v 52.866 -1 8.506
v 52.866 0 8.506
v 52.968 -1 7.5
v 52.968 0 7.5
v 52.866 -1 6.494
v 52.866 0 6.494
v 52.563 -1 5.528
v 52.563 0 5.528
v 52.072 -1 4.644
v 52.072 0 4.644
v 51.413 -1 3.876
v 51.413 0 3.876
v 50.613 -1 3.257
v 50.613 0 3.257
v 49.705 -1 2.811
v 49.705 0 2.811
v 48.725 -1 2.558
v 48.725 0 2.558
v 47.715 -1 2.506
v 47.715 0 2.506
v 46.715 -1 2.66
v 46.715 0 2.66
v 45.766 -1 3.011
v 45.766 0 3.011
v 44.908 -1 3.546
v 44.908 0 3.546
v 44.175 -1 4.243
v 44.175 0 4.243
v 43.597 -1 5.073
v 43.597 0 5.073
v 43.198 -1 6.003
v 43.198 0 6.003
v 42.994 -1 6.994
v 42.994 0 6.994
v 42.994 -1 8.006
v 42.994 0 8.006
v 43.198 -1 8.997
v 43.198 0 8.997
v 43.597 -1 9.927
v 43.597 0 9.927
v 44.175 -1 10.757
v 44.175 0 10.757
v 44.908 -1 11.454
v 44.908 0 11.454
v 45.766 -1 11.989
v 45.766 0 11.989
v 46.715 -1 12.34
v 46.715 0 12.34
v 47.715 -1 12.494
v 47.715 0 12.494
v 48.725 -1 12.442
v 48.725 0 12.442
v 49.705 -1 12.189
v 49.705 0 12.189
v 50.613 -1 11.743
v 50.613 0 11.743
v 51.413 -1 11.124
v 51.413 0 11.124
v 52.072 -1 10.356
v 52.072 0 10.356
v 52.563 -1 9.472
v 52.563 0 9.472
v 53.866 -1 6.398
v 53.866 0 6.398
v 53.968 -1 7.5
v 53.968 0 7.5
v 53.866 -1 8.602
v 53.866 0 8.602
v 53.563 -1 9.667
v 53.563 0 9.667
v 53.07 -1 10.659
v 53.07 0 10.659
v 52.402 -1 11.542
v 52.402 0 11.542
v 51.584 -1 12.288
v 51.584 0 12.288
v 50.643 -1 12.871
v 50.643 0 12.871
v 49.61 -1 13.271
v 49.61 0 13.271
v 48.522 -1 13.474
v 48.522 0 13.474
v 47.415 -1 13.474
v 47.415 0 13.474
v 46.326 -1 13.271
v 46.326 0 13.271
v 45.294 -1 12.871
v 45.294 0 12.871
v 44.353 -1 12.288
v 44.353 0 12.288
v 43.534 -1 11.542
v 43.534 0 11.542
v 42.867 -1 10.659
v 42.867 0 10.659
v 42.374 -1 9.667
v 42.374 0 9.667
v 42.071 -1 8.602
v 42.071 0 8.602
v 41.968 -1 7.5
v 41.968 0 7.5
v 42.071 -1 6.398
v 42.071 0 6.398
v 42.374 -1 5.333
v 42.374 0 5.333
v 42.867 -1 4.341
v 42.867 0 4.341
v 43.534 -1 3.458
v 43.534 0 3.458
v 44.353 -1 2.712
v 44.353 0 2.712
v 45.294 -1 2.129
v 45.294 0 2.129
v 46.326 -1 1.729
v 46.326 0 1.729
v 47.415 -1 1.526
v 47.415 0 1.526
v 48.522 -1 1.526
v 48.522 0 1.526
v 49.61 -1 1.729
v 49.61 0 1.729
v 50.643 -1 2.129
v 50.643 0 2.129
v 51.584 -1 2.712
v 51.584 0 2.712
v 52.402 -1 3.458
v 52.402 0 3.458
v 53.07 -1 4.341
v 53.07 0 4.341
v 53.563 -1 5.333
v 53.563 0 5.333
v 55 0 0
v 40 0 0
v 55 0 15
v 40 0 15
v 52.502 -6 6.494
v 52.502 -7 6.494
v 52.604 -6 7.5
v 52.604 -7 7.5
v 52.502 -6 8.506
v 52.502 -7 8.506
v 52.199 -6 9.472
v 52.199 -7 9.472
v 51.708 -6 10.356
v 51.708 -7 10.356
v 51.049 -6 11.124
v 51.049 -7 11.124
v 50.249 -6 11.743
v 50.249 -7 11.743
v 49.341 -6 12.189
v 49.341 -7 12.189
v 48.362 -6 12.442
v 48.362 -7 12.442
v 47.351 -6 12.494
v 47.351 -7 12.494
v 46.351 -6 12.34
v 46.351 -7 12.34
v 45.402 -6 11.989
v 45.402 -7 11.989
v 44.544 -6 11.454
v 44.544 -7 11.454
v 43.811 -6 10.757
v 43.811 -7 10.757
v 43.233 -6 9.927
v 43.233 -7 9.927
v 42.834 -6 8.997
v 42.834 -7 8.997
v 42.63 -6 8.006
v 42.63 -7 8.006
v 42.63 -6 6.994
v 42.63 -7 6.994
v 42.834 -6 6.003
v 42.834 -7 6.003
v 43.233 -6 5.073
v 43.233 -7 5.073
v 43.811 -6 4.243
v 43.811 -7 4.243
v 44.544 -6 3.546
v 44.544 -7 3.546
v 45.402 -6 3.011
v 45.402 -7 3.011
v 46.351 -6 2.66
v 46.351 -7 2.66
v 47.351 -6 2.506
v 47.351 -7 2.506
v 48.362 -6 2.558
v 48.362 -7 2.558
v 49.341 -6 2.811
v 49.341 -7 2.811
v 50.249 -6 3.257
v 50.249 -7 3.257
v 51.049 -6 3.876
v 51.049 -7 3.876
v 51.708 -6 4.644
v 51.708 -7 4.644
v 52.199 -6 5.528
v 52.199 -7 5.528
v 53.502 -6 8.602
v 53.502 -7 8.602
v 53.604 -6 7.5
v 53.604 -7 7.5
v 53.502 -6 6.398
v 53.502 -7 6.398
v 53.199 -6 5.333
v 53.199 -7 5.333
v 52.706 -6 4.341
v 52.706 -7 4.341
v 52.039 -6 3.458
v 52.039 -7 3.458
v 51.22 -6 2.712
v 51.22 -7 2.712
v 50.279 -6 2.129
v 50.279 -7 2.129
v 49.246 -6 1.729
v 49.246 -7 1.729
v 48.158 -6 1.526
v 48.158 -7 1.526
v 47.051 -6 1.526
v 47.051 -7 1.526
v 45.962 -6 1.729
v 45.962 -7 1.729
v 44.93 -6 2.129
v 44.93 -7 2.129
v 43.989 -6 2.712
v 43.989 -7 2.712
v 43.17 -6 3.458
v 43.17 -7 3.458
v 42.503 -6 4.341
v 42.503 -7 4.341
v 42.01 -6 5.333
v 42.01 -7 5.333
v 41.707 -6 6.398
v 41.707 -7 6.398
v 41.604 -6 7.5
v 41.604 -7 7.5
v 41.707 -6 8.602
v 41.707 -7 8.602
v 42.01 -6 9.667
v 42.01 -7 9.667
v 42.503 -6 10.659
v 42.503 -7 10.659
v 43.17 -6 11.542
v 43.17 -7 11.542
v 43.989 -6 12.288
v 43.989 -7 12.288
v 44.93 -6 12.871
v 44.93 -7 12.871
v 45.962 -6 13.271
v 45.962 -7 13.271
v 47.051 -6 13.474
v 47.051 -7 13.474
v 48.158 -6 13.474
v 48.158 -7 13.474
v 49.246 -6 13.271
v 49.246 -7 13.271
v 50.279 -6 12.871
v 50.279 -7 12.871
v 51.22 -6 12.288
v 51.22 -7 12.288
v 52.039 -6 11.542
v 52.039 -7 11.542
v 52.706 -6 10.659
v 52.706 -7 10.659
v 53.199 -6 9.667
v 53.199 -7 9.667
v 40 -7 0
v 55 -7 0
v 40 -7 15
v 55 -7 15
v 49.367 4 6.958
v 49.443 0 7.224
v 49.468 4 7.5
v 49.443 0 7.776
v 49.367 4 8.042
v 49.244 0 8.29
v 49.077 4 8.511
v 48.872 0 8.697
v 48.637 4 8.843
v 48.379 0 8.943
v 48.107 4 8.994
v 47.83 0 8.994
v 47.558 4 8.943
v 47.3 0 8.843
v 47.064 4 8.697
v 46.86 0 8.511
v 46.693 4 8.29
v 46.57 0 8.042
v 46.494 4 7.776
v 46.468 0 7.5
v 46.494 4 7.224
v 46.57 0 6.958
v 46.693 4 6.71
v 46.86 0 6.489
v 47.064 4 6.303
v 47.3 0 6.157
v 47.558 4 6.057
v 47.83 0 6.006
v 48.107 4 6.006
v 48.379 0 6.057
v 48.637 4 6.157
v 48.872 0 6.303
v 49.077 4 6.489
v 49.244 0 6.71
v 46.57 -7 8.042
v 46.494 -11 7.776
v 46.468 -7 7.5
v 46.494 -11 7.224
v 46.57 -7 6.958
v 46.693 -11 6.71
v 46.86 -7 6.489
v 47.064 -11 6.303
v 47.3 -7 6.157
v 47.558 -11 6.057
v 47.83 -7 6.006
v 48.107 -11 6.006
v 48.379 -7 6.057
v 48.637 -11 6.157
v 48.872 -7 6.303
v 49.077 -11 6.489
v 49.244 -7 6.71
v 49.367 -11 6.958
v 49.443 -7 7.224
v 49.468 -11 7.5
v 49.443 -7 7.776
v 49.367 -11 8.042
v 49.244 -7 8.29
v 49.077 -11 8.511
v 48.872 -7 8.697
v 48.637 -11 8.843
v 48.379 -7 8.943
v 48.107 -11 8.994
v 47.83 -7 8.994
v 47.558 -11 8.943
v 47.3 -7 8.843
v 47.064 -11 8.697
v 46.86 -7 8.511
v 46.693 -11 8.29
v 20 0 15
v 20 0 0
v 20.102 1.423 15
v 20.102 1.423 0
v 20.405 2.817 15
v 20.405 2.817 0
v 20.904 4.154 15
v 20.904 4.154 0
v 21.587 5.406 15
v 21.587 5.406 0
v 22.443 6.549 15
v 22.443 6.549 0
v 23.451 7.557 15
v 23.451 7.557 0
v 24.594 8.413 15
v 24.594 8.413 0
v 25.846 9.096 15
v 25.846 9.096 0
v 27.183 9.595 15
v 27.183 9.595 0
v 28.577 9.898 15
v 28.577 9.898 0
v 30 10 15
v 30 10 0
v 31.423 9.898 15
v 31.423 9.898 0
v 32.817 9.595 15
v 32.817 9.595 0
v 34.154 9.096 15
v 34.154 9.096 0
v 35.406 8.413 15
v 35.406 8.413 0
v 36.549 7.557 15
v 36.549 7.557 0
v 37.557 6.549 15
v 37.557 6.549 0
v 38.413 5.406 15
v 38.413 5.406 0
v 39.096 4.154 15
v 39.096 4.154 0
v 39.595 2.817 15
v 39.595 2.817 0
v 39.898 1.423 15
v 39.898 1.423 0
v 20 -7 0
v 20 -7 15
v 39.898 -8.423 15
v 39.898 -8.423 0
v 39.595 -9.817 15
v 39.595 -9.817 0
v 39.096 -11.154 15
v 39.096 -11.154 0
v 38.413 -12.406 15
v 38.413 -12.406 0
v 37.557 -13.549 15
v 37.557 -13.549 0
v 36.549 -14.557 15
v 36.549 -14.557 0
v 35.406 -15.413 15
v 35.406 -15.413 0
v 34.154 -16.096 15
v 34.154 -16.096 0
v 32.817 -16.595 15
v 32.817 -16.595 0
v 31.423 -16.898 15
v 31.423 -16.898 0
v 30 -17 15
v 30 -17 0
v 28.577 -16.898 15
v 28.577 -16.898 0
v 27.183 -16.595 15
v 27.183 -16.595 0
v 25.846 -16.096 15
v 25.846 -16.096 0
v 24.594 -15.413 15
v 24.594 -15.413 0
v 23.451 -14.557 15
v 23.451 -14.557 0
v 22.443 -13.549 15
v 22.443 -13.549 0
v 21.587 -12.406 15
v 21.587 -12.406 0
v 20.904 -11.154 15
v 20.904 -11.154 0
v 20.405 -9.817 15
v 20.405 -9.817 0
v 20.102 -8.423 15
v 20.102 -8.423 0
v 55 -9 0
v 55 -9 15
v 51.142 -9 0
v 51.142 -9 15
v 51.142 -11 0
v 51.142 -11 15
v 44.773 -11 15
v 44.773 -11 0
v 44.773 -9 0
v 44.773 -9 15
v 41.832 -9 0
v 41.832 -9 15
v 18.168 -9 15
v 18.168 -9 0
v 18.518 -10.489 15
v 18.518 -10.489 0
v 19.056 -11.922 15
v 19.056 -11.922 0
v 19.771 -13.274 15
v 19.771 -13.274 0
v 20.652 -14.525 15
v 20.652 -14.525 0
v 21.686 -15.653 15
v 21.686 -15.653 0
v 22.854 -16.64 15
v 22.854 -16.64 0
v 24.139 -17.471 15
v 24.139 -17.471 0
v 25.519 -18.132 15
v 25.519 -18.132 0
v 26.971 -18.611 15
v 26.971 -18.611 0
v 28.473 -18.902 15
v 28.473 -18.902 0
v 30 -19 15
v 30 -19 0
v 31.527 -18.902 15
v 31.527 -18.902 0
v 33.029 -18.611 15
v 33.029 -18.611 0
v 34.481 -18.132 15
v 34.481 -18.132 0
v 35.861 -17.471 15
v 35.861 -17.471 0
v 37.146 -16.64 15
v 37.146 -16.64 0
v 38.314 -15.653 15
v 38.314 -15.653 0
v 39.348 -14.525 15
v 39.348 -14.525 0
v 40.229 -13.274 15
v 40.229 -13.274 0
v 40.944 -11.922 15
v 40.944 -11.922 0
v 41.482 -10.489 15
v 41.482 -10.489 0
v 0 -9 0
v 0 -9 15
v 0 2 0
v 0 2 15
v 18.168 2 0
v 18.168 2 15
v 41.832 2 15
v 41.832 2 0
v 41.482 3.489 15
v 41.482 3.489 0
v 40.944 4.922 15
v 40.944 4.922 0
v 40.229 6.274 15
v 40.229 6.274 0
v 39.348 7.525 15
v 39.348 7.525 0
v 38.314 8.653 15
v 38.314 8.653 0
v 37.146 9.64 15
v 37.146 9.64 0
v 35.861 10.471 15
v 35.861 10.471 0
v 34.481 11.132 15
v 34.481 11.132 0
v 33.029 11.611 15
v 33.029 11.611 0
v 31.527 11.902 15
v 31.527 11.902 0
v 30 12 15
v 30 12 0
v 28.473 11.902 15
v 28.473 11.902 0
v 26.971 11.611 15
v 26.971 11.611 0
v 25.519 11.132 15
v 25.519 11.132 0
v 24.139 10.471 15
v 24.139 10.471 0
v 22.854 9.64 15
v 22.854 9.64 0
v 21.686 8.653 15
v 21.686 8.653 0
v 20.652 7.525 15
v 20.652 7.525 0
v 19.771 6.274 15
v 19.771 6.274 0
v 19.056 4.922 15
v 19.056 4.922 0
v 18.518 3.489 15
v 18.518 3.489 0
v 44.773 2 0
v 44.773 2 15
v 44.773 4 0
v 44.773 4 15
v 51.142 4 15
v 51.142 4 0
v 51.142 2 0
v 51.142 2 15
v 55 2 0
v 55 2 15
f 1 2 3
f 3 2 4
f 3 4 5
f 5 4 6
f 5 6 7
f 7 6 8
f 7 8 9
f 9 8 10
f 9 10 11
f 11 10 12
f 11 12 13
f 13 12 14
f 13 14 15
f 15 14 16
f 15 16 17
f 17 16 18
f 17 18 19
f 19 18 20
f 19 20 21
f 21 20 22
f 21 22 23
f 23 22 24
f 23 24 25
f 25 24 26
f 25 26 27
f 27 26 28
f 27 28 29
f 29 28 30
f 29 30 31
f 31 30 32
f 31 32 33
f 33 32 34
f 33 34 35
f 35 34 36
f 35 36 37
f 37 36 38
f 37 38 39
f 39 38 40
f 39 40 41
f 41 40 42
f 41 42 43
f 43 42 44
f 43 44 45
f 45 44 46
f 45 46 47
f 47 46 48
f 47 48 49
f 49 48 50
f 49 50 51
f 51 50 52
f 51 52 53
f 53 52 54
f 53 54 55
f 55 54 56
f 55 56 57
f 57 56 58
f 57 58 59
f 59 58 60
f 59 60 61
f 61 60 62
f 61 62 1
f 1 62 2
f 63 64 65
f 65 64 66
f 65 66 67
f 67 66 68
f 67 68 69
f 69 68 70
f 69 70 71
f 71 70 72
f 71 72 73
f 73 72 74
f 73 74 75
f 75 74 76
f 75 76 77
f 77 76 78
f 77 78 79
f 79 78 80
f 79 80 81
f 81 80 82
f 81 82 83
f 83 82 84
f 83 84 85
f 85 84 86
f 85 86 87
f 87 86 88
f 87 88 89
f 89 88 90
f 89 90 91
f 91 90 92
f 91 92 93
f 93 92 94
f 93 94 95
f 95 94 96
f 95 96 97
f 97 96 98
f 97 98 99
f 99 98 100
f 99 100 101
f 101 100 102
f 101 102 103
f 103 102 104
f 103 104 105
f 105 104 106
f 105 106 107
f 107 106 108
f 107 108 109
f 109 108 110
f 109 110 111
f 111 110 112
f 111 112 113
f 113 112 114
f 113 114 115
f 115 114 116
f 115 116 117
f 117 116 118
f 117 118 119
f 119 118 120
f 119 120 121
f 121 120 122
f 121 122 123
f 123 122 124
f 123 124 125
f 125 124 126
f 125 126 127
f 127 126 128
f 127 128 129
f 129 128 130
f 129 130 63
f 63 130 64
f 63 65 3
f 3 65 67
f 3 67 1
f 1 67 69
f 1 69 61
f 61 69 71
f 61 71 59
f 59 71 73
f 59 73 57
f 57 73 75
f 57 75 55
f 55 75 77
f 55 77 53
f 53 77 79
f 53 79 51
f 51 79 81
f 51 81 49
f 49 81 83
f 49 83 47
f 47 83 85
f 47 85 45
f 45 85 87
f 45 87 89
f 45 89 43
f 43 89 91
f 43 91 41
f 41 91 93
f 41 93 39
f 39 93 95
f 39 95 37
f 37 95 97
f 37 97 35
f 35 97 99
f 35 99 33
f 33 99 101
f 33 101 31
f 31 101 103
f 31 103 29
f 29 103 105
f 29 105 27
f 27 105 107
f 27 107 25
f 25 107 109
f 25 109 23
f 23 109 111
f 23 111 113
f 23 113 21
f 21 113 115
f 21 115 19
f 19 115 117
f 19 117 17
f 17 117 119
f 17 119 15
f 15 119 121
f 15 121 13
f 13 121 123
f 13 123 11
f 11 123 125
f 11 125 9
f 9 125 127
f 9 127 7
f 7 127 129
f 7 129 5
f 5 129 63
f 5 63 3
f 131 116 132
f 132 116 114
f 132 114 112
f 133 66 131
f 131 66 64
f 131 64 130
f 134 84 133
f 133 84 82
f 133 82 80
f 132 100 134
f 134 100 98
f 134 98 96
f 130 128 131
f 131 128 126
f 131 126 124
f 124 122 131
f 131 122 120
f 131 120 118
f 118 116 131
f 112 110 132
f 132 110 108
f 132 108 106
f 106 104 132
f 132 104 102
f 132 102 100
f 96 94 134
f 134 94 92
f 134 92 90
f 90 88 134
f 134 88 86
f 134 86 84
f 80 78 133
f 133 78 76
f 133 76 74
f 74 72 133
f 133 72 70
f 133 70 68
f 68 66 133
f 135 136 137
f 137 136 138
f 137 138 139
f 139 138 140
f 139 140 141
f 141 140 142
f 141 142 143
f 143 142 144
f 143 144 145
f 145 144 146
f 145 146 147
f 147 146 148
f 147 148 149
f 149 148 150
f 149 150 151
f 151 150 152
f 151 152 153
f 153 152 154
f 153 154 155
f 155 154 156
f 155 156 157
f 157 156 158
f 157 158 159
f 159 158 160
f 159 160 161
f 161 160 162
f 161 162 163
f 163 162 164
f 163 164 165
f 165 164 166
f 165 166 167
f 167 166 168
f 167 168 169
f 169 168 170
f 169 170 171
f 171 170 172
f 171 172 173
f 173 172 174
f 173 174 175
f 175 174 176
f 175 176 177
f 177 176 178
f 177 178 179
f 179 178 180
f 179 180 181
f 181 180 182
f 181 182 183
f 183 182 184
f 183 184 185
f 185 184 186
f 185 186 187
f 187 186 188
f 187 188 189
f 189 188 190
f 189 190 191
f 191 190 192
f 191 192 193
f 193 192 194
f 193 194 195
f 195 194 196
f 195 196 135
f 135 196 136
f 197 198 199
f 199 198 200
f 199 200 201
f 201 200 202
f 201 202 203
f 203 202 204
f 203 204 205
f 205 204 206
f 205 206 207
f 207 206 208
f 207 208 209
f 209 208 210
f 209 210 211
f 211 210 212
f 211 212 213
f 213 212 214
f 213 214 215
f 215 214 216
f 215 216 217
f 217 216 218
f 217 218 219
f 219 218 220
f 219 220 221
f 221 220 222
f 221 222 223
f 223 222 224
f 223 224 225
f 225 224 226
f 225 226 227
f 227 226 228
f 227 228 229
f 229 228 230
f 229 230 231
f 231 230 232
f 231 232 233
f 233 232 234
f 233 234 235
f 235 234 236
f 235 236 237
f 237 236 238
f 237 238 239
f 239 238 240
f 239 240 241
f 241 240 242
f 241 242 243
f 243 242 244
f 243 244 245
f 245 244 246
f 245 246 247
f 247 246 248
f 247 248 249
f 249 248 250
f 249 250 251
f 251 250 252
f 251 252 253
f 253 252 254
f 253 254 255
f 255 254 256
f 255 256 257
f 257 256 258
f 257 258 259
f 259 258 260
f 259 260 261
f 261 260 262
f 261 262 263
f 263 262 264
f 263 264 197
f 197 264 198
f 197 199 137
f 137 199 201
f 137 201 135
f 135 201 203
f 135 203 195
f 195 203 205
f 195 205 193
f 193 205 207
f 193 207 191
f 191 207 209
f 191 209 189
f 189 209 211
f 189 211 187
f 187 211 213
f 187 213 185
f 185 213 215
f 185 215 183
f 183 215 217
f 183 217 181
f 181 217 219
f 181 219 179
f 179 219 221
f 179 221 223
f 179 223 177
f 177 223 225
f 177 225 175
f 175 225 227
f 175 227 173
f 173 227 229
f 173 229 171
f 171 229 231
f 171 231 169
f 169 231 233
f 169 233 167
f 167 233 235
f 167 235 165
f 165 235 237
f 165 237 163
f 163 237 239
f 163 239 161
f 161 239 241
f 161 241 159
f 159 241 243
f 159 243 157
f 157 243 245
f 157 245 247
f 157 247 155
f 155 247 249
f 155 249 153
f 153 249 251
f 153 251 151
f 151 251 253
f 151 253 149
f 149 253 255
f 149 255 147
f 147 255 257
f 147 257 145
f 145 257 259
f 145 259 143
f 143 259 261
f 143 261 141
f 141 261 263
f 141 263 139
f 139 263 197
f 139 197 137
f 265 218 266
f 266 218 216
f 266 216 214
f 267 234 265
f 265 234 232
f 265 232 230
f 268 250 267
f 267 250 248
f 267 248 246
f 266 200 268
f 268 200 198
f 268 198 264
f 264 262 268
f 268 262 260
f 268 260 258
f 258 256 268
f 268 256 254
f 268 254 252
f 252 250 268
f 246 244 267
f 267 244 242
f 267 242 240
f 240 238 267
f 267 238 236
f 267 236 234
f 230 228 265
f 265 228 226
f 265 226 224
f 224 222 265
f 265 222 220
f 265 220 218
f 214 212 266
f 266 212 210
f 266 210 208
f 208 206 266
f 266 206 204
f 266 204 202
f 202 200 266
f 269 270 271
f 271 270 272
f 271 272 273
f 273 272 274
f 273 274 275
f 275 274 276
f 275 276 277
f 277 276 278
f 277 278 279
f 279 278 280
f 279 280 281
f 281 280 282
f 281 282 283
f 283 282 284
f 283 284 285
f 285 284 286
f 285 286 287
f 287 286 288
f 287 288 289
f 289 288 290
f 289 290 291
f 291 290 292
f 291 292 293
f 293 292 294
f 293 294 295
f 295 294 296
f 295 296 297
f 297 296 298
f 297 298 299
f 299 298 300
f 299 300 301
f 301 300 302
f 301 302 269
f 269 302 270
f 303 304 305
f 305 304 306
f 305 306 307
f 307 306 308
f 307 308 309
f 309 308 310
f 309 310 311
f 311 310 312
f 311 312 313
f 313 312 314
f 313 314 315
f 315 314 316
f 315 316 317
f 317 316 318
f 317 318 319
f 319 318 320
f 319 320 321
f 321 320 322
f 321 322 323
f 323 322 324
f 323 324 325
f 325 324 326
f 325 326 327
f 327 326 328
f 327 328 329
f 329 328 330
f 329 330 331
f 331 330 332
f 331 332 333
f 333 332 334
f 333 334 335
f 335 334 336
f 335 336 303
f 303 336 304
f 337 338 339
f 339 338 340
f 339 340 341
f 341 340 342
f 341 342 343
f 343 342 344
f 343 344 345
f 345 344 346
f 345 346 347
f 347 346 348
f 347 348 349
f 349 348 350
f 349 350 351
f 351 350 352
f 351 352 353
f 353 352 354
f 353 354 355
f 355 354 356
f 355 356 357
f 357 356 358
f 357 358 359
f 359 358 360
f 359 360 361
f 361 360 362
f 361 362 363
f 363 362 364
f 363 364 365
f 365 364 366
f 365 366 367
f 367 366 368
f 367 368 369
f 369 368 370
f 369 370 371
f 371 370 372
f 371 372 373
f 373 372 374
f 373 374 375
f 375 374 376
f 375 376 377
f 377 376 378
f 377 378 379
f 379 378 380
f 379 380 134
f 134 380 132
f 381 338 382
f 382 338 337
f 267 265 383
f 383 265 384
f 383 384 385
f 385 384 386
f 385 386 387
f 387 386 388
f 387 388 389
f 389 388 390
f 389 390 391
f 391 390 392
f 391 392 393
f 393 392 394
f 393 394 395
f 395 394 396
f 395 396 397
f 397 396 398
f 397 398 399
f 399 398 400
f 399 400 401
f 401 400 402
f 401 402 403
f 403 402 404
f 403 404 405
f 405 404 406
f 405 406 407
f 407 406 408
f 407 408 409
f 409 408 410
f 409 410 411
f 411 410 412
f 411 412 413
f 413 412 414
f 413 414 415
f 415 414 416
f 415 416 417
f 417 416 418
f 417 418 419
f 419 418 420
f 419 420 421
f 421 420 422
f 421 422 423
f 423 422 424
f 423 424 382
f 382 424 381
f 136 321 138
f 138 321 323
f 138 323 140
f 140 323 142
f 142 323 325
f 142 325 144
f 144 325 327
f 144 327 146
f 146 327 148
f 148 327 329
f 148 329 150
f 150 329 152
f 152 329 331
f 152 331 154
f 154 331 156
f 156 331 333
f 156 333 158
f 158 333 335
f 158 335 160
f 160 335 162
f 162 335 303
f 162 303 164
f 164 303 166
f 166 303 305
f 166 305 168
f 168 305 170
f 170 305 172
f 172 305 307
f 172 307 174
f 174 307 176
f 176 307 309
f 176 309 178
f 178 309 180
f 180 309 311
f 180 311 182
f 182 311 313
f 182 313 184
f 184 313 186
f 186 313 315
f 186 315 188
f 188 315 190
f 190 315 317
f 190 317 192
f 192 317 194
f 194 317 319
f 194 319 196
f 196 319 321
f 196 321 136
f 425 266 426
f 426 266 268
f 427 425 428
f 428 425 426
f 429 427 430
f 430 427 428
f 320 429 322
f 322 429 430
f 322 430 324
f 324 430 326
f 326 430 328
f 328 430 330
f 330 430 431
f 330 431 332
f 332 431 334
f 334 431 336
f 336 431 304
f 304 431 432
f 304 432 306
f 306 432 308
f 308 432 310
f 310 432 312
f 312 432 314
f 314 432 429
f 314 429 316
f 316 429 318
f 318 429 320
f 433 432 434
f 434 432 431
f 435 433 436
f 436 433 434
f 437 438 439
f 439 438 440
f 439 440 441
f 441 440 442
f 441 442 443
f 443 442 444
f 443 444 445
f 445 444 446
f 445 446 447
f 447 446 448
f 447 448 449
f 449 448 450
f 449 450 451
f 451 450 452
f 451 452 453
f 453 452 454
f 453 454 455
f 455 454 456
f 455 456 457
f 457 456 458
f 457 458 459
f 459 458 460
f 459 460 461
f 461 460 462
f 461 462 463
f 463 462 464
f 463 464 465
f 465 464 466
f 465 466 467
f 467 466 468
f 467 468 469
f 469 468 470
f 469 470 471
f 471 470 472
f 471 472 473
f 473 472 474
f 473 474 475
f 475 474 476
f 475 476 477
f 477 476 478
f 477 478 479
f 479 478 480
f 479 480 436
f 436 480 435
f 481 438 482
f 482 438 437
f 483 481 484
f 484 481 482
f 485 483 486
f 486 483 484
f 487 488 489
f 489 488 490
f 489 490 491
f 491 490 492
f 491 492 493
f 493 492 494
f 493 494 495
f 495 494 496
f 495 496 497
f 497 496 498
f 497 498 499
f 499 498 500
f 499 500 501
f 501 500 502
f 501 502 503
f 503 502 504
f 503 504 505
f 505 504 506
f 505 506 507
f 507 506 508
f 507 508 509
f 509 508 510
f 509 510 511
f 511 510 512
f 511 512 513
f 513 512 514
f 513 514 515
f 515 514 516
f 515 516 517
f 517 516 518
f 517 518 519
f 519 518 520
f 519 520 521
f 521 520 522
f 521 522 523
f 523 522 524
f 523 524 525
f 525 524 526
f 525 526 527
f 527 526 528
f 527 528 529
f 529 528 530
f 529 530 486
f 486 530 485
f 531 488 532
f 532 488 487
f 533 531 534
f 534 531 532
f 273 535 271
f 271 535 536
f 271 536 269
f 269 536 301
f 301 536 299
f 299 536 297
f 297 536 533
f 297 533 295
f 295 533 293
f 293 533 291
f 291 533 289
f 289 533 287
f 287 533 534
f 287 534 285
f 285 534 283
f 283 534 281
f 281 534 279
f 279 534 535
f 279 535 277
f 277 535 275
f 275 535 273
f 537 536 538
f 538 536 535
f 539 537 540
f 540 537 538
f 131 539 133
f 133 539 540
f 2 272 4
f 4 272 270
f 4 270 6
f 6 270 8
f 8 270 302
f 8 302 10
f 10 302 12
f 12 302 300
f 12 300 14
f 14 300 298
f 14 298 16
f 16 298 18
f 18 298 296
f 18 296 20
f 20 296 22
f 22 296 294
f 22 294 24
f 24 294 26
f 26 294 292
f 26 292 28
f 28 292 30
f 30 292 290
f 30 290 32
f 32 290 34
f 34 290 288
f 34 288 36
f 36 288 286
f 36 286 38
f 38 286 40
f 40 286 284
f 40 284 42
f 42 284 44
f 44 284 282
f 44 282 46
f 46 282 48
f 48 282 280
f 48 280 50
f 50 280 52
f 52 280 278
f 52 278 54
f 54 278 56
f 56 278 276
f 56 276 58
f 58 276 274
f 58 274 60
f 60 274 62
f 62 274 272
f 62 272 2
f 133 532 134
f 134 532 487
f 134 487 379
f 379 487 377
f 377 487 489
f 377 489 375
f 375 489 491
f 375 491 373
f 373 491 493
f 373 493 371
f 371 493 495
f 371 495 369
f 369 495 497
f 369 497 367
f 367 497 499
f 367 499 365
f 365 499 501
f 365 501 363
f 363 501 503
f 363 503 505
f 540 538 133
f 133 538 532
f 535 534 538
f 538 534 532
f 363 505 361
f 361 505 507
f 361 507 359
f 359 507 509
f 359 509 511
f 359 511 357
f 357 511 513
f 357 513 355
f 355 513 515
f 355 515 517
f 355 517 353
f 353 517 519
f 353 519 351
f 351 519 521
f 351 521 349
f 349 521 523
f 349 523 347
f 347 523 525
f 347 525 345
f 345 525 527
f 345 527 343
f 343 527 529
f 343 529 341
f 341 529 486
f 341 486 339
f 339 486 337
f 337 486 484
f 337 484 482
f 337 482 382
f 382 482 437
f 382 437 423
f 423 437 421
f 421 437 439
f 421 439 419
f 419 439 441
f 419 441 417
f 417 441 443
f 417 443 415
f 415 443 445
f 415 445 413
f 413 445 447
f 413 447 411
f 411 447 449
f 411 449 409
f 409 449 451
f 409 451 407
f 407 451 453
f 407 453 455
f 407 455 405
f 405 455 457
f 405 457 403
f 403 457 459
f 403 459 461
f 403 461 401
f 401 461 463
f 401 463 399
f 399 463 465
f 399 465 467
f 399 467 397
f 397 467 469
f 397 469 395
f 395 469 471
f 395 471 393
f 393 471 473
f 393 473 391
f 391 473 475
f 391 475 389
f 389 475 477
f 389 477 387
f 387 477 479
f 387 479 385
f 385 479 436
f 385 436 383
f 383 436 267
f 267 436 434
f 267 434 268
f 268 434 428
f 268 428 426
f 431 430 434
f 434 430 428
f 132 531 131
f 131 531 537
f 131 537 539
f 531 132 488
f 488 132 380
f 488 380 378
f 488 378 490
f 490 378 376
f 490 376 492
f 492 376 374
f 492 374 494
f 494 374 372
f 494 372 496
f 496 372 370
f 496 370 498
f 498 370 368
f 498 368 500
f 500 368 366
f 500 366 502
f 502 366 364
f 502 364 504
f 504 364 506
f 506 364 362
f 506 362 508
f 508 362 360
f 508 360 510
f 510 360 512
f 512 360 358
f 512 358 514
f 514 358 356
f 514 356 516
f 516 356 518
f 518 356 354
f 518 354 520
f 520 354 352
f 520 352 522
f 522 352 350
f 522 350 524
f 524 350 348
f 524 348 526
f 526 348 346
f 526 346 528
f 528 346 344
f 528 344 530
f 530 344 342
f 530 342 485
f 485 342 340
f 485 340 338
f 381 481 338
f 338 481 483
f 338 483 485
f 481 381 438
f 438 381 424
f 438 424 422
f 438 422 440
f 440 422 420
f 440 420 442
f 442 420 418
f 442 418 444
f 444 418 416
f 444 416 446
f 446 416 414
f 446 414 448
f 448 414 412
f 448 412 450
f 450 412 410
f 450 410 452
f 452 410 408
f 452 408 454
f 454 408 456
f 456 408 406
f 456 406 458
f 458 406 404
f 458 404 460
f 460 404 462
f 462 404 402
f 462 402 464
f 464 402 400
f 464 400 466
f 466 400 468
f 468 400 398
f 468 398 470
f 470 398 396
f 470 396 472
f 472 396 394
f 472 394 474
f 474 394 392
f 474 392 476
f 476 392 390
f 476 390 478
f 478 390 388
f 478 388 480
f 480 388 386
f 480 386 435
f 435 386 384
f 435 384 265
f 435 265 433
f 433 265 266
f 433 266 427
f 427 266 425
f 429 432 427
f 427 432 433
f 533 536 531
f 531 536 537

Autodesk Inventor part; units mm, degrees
ref_plane "YZ Plane" through (0, 0, 0) normal (1, 0, 0) x (0, 1, 0)
ref_plane "XZ Plane" through (0, 0, 0) normal (0, 1, 0) x (-1, 0, 0)
ref_plane "XY Plane" through (0, 0, 0) normal (0, 0, 1) x (1, 0, 0)
sketch "Esboço1" plane through (0, 0, 0) normal (0, 0, 1) x (1, 0, 0)
  line L0 (0, 0) -> (20, 0)
  arc A0 (40, 0) -> (20, 0) centre (30, 0) ccw
  line L1 (40, 0) -> (55, 0)
  line L2 (55, 2) -> (41.8322, 2)
  arc A1 (41.8322, 2) -> (18.1678, 2) centre (30, 0) ccw
  line L3 (18.1678, 2) -> (0, 2)
  line L4 (0, 0) -> (0, 2)
  line L5 (55, 2) -> (55, 0)
  line L6 (-5.5604, -3.5) -> (66.7999, -3.5)
  line L7 (0, -7) -> (20, -7)
  arc A2 (20, -7) -> (40, -7) centre (30, -7) ccw
  line L8 (40, -7) -> (55, -7)
  line L9 (55, -9) -> (41.8322, -9)
  arc A3 (18.1678, -9) -> (41.8322, -9) centre (30, -7) ccw
  line L10 (18.1678, -9) -> (0, -9)
  line L11 (0, -7) -> (0, -9)
  line L12 (55, -9) -> (55, -7)
  line L13 (0, -7) -> (20, -7)
  line L14 (20, -7) -> (20, 0)
  line L15 (20, 0) -> (0, 0)
  line L16 (0, 0) -> (0, -7)
  line L17 (51.1425, 2) -> (44.7734, 2)
  line L18 (44.7734, 2) -> (44.7734, 4)
  line L19 (44.7734, 4) -> (51.1425, 4)
  line L20 (51.1425, 4) -> (51.1425, 2)
  line L21 (51.1425, -9) -> (44.7734, -9)
  line L22 (44.7734, -9) -> (44.7734, -11)
  line L23 (44.7734, -11) -> (51.1425, -11)
  line L24 (51.1425, -11) -> (51.1425, -9)
  point P0 (44.7734, -9)
  point P1 (20, -7)
  dimension "d0" = 20
  dimension "d1" = 20
  dimension "d2" = 10
  dimension "d3" = 15
  dimension "d4" = 2
  dimension "d5" = 7
  dimension "d6" = 2
  dimension "d7" = 2
extrude "Extrusão1" add sketch "Esboço1" along normal blind 15
sketch "Esboço2" plane through (44.7734, 4, 0) normal (0, 1, 0) x (1, 0, 0)
  circle A0 centre (3.195, -7.5) radius 1.5
  line L0 (6.3691, 0) -> (0, 0) projected
  line L1 (0, 0) -> (0, -15) projected
  point P0 (-44.7734, 0)
  dimension "d10" = 3
  dimension "d11" = 7.5
  dimension "d12" = 3.195
extrude "Extrusão2" cut sketch "Esboço2" against normal blind 15
sketch "Esboço3" plane through (40, -7, 0) normal (0, 1, 0) x (1, 0, 0)
  circle A0 centre (7.6045, -7.5) radius 5
  circle A1 centre (7.6045, -7.5) radius 6
  point P0 (-40, 0)
  dimension "d15" = 10
  dimension "d16" = 12
extrude "Extrusão3" add sketch "Esboço3" along normal blind 1
sketch "Esboço4" plane through (40, 0, 0) normal (0, -1, 0) x (1, 0, 0)
  circle A0 centre (7.9684, 7.5) radius 1.5 projected
  circle A1 centre (7.9684, 7.5) radius 5
  circle A2 centre (7.9684, 7.5) radius 6
  point P0 (-40, 0)
  dimension "d19" = 10
  dimension "d20" = 12
extrude "Extrusão4" add sketch "Esboço4" along normal blind 1 contours A2
